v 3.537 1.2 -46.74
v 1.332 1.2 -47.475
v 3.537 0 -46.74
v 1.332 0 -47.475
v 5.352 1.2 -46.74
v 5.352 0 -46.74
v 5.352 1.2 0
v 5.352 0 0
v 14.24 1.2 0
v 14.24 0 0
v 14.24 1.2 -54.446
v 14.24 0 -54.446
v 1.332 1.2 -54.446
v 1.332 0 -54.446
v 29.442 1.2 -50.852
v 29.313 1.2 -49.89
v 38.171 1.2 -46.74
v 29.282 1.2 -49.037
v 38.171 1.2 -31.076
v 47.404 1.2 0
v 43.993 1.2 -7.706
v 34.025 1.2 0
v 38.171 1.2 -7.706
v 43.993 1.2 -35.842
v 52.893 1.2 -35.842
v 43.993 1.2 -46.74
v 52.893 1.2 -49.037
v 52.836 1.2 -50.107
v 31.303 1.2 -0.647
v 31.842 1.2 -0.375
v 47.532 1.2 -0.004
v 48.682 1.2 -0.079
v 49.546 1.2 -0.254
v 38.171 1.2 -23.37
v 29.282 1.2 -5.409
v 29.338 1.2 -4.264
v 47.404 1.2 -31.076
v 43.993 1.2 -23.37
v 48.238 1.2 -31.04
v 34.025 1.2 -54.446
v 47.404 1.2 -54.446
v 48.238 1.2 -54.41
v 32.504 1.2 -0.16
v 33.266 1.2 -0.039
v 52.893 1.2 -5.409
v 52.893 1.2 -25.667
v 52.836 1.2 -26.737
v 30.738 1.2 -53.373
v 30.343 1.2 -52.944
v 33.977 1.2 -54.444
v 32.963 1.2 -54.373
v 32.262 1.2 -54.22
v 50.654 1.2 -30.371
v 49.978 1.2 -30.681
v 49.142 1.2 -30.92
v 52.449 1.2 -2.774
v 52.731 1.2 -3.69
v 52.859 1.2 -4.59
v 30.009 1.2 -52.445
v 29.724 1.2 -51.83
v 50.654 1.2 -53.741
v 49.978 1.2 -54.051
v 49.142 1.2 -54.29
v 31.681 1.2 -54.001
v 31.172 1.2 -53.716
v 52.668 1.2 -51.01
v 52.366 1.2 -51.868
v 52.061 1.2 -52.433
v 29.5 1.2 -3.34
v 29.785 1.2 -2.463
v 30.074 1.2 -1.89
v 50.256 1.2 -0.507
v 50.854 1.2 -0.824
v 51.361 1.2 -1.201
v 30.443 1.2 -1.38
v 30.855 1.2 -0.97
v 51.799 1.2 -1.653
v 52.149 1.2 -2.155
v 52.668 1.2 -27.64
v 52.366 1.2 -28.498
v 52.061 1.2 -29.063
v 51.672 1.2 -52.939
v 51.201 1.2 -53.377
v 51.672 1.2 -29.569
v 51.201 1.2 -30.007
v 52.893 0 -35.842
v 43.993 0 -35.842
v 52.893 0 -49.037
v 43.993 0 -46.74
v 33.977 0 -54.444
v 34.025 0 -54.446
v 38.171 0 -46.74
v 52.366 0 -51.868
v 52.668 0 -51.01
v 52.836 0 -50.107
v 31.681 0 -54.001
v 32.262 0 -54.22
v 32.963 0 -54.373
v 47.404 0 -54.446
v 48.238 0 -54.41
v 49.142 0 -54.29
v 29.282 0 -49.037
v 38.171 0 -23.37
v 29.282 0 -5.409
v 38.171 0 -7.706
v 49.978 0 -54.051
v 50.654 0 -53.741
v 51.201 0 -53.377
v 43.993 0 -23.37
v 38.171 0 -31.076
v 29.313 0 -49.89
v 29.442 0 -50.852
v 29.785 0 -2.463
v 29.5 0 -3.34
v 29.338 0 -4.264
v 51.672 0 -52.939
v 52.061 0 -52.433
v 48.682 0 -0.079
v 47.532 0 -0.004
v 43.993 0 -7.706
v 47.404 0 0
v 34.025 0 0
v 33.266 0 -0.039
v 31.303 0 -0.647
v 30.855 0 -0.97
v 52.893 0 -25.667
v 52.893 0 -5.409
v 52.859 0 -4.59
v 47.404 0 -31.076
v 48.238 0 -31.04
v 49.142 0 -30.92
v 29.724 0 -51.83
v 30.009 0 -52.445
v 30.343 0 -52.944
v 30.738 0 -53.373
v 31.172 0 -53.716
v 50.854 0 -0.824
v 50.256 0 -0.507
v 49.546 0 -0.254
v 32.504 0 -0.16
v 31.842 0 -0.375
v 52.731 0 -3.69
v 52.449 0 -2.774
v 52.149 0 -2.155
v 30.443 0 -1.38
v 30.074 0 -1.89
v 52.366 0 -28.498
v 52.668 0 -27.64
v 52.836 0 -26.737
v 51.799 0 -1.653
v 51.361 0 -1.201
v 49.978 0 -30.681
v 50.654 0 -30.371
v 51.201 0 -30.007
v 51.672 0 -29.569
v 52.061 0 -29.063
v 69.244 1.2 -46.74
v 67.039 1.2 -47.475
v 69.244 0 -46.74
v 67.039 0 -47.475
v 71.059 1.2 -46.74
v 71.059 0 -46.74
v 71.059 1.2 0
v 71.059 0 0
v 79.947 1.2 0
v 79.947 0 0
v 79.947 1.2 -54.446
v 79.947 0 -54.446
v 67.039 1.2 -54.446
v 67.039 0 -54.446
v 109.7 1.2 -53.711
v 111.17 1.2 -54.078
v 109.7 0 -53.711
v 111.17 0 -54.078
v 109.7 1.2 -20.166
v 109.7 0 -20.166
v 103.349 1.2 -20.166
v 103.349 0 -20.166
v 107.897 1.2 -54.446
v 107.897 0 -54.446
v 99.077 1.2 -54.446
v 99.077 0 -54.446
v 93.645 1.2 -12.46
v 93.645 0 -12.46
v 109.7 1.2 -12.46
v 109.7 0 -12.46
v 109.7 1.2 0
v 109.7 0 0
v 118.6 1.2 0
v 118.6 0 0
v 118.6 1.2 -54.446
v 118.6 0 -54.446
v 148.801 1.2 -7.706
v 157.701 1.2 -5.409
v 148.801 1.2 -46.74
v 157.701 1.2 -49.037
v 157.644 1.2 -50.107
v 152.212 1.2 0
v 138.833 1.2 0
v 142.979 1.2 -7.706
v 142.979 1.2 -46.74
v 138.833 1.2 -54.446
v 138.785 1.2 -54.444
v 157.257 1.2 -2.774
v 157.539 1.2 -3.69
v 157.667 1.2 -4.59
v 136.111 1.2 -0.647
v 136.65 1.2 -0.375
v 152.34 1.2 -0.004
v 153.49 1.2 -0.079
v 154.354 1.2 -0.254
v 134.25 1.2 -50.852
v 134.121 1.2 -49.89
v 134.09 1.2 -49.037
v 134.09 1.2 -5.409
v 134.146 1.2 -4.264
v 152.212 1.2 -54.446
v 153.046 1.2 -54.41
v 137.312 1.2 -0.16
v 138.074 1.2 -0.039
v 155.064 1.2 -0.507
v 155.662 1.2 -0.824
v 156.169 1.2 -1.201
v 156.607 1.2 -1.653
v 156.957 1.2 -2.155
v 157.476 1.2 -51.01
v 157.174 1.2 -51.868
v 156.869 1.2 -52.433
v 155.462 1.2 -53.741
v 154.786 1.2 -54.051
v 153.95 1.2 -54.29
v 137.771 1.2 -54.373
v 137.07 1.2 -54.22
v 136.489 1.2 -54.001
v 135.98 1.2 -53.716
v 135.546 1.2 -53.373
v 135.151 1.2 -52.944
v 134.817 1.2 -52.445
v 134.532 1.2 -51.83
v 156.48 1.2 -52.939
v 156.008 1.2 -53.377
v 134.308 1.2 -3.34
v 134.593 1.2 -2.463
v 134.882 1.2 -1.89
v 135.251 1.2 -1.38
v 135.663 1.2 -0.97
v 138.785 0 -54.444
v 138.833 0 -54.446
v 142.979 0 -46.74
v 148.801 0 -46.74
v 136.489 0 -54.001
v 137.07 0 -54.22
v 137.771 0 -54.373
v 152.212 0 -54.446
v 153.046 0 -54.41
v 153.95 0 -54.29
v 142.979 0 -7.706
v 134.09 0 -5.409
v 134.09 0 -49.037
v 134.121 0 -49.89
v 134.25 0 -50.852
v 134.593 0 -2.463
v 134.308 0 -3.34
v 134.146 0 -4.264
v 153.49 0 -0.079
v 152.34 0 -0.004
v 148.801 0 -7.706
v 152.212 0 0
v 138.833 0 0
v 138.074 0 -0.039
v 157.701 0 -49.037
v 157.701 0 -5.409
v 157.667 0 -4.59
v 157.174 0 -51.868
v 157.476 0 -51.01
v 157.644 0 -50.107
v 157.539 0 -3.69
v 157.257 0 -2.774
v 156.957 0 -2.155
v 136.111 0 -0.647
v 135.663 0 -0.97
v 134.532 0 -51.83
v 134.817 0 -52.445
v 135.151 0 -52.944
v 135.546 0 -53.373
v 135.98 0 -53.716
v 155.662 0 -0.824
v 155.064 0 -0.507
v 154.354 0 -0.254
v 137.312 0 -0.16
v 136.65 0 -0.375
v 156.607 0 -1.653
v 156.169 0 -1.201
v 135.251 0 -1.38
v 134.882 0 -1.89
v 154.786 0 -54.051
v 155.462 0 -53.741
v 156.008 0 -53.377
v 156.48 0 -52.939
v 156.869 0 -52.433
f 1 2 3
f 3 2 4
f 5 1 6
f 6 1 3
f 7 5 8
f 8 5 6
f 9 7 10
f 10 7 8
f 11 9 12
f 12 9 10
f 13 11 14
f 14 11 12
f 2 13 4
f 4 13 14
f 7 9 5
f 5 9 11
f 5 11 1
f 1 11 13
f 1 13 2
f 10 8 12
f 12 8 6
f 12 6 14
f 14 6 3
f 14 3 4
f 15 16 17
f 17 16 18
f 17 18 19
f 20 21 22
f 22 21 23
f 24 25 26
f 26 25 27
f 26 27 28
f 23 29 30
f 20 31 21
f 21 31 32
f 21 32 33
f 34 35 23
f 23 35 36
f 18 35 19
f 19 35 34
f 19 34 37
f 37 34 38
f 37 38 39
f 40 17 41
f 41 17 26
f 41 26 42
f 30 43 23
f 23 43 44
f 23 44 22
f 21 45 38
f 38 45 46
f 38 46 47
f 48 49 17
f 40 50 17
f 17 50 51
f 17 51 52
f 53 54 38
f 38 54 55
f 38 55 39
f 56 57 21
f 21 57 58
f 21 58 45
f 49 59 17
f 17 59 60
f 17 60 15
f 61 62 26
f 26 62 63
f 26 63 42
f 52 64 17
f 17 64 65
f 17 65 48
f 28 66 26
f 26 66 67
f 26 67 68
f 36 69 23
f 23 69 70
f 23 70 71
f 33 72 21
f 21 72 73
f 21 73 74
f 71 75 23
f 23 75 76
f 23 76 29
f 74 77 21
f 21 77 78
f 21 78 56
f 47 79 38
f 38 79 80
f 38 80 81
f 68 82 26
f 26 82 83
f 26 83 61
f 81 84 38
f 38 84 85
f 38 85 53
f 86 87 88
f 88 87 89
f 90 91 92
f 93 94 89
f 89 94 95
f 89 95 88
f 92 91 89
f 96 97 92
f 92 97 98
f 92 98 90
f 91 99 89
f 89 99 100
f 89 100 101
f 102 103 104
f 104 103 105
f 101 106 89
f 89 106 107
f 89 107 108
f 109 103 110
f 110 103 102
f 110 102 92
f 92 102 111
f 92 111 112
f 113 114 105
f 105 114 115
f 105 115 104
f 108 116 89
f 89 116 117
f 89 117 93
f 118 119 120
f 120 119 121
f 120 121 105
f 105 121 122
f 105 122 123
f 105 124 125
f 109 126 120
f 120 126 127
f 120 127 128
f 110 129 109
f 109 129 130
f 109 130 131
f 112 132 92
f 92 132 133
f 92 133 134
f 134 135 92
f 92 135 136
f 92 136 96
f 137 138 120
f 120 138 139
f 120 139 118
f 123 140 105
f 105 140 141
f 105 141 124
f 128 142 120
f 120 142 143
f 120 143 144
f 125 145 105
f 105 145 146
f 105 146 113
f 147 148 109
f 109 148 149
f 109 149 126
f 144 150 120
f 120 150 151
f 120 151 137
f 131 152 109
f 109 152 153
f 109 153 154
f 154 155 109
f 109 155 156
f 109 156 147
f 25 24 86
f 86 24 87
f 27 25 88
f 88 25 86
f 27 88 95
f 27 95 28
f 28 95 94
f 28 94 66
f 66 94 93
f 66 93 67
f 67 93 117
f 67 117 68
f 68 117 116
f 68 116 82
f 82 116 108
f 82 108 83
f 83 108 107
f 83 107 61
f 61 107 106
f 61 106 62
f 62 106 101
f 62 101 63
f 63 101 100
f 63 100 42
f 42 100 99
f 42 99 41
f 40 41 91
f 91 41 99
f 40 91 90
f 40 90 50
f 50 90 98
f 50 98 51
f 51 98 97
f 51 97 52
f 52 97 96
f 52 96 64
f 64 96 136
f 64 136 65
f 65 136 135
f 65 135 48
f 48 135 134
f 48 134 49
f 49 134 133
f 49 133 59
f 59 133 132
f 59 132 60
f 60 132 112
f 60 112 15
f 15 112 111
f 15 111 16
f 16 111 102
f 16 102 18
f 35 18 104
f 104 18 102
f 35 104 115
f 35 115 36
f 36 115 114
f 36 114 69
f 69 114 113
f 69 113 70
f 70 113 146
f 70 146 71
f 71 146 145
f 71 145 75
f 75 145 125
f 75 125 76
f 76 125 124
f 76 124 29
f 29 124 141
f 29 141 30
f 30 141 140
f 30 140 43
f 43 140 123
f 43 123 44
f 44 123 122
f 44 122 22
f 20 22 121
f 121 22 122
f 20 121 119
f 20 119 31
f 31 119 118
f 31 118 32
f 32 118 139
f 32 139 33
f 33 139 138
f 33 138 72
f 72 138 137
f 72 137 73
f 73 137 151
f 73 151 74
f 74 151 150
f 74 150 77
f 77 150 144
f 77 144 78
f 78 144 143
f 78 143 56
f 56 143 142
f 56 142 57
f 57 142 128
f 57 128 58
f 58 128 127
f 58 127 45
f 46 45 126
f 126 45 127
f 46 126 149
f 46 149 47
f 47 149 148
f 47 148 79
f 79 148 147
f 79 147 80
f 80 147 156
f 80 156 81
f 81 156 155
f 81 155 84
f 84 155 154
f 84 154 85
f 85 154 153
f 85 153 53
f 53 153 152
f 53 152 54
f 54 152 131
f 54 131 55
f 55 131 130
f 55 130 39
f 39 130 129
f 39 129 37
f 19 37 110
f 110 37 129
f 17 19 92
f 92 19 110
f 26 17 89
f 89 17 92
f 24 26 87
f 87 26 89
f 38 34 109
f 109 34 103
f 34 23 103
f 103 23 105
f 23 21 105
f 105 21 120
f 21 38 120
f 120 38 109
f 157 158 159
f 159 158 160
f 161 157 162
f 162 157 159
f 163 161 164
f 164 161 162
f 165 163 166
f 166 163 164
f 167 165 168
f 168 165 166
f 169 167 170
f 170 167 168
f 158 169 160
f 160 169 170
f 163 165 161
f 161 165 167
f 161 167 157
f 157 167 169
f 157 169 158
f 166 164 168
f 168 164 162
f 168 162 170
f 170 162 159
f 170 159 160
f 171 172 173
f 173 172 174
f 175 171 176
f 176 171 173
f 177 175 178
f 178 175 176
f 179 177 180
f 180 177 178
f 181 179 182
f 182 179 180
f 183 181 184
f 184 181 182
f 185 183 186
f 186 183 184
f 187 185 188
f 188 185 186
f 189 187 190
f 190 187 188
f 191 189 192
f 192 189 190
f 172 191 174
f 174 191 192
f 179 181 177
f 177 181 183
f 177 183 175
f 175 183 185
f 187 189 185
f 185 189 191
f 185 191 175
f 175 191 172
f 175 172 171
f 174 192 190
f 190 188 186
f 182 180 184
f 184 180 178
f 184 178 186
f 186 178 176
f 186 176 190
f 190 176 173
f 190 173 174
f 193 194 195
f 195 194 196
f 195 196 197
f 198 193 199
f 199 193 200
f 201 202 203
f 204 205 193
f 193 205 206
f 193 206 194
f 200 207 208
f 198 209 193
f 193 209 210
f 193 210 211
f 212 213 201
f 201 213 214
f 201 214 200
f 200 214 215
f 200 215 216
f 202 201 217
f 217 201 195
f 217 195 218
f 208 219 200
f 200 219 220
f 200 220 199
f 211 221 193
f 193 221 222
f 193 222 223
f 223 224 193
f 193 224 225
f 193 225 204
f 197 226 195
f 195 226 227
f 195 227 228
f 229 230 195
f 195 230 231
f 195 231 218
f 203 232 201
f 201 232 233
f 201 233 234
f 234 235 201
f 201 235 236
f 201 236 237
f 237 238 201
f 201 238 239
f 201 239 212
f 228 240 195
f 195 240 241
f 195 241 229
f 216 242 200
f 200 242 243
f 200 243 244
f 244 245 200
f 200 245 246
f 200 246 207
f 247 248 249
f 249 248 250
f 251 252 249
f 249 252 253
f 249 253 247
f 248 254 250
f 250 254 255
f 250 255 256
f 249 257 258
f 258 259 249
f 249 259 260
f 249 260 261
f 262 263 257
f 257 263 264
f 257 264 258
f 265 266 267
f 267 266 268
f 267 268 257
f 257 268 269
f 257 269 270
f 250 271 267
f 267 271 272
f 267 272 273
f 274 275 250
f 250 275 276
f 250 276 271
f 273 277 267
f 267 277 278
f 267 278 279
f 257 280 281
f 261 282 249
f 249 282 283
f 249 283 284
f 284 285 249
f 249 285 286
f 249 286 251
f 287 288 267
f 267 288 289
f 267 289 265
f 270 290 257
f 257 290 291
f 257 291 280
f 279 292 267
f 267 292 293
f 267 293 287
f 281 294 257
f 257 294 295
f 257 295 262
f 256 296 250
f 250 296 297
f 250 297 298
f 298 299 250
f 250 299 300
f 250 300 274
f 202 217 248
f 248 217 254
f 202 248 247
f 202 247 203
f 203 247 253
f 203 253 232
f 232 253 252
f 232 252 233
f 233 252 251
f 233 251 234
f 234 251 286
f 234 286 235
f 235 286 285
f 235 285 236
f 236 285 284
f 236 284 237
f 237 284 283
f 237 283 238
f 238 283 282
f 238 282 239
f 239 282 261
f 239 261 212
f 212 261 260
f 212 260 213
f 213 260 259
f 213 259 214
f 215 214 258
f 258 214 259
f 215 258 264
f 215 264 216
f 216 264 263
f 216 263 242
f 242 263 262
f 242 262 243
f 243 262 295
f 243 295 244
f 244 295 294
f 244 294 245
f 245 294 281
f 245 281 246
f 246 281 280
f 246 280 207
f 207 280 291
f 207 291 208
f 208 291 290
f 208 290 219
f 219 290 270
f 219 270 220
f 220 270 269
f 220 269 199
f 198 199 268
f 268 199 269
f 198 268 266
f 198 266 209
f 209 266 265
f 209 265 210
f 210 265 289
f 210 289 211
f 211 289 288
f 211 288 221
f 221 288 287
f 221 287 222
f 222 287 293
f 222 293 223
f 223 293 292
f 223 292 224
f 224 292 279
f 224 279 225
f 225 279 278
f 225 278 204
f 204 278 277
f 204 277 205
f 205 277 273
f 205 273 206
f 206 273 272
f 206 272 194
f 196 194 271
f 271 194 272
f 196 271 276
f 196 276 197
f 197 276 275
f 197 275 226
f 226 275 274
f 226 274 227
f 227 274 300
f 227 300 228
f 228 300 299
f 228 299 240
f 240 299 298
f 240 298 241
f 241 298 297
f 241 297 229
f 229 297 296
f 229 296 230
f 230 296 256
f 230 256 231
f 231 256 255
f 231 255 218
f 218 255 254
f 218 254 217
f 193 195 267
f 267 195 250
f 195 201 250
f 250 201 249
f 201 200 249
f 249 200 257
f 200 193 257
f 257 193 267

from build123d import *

# Parameters (mm, degrees)
BOSS_EXTRUDE1_DEPTH   = 1.2
SKETCH1_W             = 5.822409575
SKETCH1_H             = 15.664234043
BOSS_EXTRUDE1_2_DEPTH = 1.2
BOSS_EXTRUDE1_3_DEPTH = 1.2
BOSS_EXTRUDE1_4_DEPTH = 1.2
SKETCH1_W_2           = 5.822409574
SKETCH1_H_2           = 39.034260638
BOSS_EXTRUDE1_5_DEPTH = 1.2


with BuildPart() as part:
    # Sketch1 → Boss-Extrude1 (new body)
    with BuildSketch(Plane(origin=(0, 0, 0), x_dir=(1, 0, 0), z_dir=(0, 1, 0))):
        Polygon((1.332148936, 47.475031915), (1.332148936, 54.445845745), (14.240212766, 54.445845745), (14.240212766, 0), (5.35156383, 0), (5.35156383, 46.740053191), (3.537085106, 46.740053191), align=None)
    extrude(amount=BOSS_EXTRUDE1_DEPTH)


with BuildPart() as body_2:
    # Sketch1 → Boss-Extrude1 2 (new body)
    with BuildSketch(Plane(origin=(0, 0, 0), x_dir=(1, 0, 0), z_dir=(0, 1, 0))):
        with BuildLine():
            Line((43.993070213, 35.841696809), (43.993070213, 46.740053191))
            Line((43.993070213, 46.740053191), (38.170660638, 46.740053191))
            Line((38.170660638, 46.740053191), (38.170660638, 31.075819149))
            Line((38.170660638, 31.075819149), (47.403830851, 31.075819149))
            add(Edge.make_bspline(
                [(47.403830851, 31.075819149), (47.833934363, 31.063337821), (48.645254992, 31.039793818), (49.780594728, 30.788496049), (50.75064648, 30.360326032), (51.551765813, 29.755321844), (52.170203012, 28.967190952), (52.59070034, 28.007509348), (52.860775148, 26.891166669), (52.882004168, 26.089657952), (52.893203191, 25.666835106)],
                knots=[0, 0, 0, 0, 1.167027584, 2.201408559, 3.136967793, 4.027212192, 4.901025933, 5.82711576, 6.853730371, 8, 8, 8, 8], degree=3))
            Line((52.893203191, 25.666835106), (52.893203191, 5.408984043))
            add(Edge.make_bspline(
                [(52.893203191, 5.408984043), (52.882004168, 4.986161196), (52.860775148, 4.18465248), (52.59070034, 3.068309801), (52.170203012, 2.108628197), (51.551765813, 1.320497305), (50.75064648, 0.715493117), (49.780594728, 0.2873231), (48.645254992, 0.036025331), (47.833934363, 0.012481328), (47.403830851, 0)],
                knots=[0, 0, 0, 0, 1.146269629, 2.17288424, 3.098974067, 3.972787808, 4.863032207, 5.798591441, 6.832972416, 8, 8, 8, 8], degree=3))
            Line((47.403830851, 0), (34.024921277, 0))
            add(Edge.make_bspline(
                [(34.024921277, 0), (33.651965003, 0.012472554), (32.946008959, 0.03608142), (31.958296205, 0.290880296), (31.115187051, 0.720045297), (30.43207145, 1.336917405), (29.901306339, 2.120659222), (29.542869308, 3.076320201), (29.308504938, 4.188060803), (29.29117846, 4.986540056), (29.282011702, 5.408984043)],
                knots=[0, 0, 0, 0, 1.084734094, 2.05325569, 2.94625814, 3.815111374, 4.706091482, 5.677498929, 6.771255973, 8, 8, 8, 8], degree=3))
            Line((29.282011702, 5.408984043), (29.282011702, 49.036861702))
            add(Edge.make_bspline(
                [(29.282011702, 49.036861702), (29.29117846, 49.459305689), (29.308504938, 50.257784941), (29.542869308, 51.369525544), (29.901306339, 52.325186523), (30.43207145, 53.108928339), (31.115187051, 53.725800448), (31.958296205, 54.154965449), (32.946008959, 54.409764325), (33.651965003, 54.433373191), (34.024921277, 54.445845745)],
                knots=[0, 0, 0, 0, 1.228744027, 2.322501071, 3.293908518, 4.184888626, 5.05374186, 5.94674431, 6.915265906, 8, 8, 8, 8], degree=3))
            Line((34.024921277, 54.445845745), (47.403830851, 54.445845745))
            add(Edge.make_bspline(
                [(47.403830851, 54.445845745), (47.833934363, 54.433364417), (48.645254992, 54.409820413), (49.780594728, 54.158522645), (50.75064648, 53.730352627), (51.551765813, 53.12534844), (52.170203012, 52.337217547), (52.59070034, 51.377535943), (52.860775148, 50.261193265), (52.882004168, 49.459684548), (52.893203191, 49.036861702)],
                knots=[0, 0, 0, 0, 1.167027584, 2.201408559, 3.136967793, 4.027212192, 4.901025933, 5.82711576, 6.853730371, 8, 8, 8, 8], degree=3))
            Line((52.893203191, 49.036861702), (52.893203191, 35.841696809))
            Line((52.893203191, 35.841696809), (43.993070213, 35.841696809))
        make_face()
        with Locations((41.081865425, 15.537909575)):
            Rectangle(SKETCH1_W, SKETCH1_H, mode=Mode.SUBTRACT)
    extrude(amount=BOSS_EXTRUDE1_2_DEPTH)


with BuildPart() as body_3:
    # Sketch1 → Boss-Extrude1 3 (new body)
    with BuildSketch(Plane(origin=(0, 0, 0), x_dir=(1, 0, 0), z_dir=(0, 1, 0))):
        Polygon((67.039246809, 47.475031915), (67.039246809, 54.445845745), (79.947310638, 54.445845745), (79.947310638, 0), (71.058661702, 0), (71.058661702, 46.740053191), (69.244182979, 46.740053191), align=None)
    extrude(amount=BOSS_EXTRUDE1_3_DEPTH)


with BuildPart() as body_4:
    # Sketch1 → Boss-Extrude1 4 (new body)
    with BuildSketch(Plane(origin=(0, 0, 0), x_dir=(1, 0, 0), z_dir=(0, 1, 0))):
        Polygon((111.170125532, 54.078356383), (118.600301064, 54.445845745), (118.600301064, 0), (109.700168085, 0), (109.700168085, 12.46018617), (93.645476596, 12.46018617), (99.077428723, 54.445845745), (107.897173404, 54.445845745), (103.349492553, 20.165978723), (109.700168085, 20.165978723), (109.700168085, 53.710867021), align=None)
    extrude(amount=BOSS_EXTRUDE1_4_DEPTH)


with BuildPart() as body_5:
    # Sketch1 → Boss-Extrude1 5 (new body)
    with BuildSketch(Plane(origin=(0, 0, 0), x_dir=(1, 0, 0), z_dir=(0, 1, 0))):
        with BuildLine():
            add(Edge.make_bspline(
                [(152.211796809, 54.445845745), (152.641900321, 54.433364417), (153.45322095, 54.409820413), (154.588560686, 54.158522645), (155.558612438, 53.730352627), (156.35973177, 53.12534844), (156.97816897, 52.337217547), (157.398666297, 51.377535943), (157.668741105, 50.261193265), (157.689970126, 49.459684548), (157.701169149, 49.036861702)],
                knots=[0, 0, 0, 0, 1.167027584, 2.201408559, 3.136967793, 4.027212192, 4.901025933, 5.82711576, 6.853730371, 8, 8, 8, 8], degree=3))
            Line((157.701169149, 49.036861702), (157.701169149, 5.408984043))
            add(Edge.make_bspline(
                [(157.701169149, 5.408984043), (157.689970126, 4.986161196), (157.668741105, 4.18465248), (157.398666297, 3.068309801), (156.97816897, 2.108628197), (156.35973177, 1.320497305), (155.558612438, 0.715493117), (154.588560686, 0.2873231), (153.45322095, 0.036025331), (152.641900321, 0.012481328), (152.211796809, 0)],
                knots=[0, 0, 0, 0, 1.146269629, 2.17288424, 3.098974067, 3.972787808, 4.863032207, 5.798591441, 6.832972416, 8, 8, 8, 8], degree=3))
            Line((152.211796809, 0), (138.832887234, 0))
            add(Edge.make_bspline(
                [(138.832887234, 0), (138.459930961, 0.012472554), (137.753974916, 0.03608142), (136.766262162, 0.290880296), (135.923153009, 0.720045297), (135.240037407, 1.336917405), (134.709272296, 2.120659222), (134.350835266, 3.076320201), (134.116470895, 4.188060803), (134.099144418, 4.986540056), (134.08997766, 5.408984043)],
                knots=[0, 0, 0, 0, 1.084734094, 2.05325569, 2.94625814, 3.815111374, 4.706091482, 5.677498929, 6.771255973, 8, 8, 8, 8], degree=3))
            Line((134.08997766, 5.408984043), (134.08997766, 49.036861702))
            add(Edge.make_bspline(
                [(134.08997766, 49.036861702), (134.099144418, 49.459305689), (134.116470895, 50.257784941), (134.350835266, 51.369525544), (134.709272296, 52.325186523), (135.240037407, 53.108928339), (135.923153009, 53.725800448), (136.766262162, 54.154965449), (137.753974916, 54.409764325), (138.459930961, 54.433373191), (138.832887234, 54.445845745)],
                knots=[0, 0, 0, 0, 1.228744027, 2.322501071, 3.293908518, 4.184888626, 5.05374186, 5.94674431, 6.915265906, 8, 8, 8, 8], degree=3))
            Line((138.832887234, 54.445845745), (152.211796809, 54.445845745))
        make_face()
        with Locations((145.889831383, 27.222922872)):
            Rectangle(SKETCH1_W_2, SKETCH1_H_2, mode=Mode.SUBTRACT)
    extrude(amount=BOSS_EXTRUDE1_5_DEPTH)


solid = Compound([part.part, body_2.part, body_3.part, body_4.part, body_5.part])
